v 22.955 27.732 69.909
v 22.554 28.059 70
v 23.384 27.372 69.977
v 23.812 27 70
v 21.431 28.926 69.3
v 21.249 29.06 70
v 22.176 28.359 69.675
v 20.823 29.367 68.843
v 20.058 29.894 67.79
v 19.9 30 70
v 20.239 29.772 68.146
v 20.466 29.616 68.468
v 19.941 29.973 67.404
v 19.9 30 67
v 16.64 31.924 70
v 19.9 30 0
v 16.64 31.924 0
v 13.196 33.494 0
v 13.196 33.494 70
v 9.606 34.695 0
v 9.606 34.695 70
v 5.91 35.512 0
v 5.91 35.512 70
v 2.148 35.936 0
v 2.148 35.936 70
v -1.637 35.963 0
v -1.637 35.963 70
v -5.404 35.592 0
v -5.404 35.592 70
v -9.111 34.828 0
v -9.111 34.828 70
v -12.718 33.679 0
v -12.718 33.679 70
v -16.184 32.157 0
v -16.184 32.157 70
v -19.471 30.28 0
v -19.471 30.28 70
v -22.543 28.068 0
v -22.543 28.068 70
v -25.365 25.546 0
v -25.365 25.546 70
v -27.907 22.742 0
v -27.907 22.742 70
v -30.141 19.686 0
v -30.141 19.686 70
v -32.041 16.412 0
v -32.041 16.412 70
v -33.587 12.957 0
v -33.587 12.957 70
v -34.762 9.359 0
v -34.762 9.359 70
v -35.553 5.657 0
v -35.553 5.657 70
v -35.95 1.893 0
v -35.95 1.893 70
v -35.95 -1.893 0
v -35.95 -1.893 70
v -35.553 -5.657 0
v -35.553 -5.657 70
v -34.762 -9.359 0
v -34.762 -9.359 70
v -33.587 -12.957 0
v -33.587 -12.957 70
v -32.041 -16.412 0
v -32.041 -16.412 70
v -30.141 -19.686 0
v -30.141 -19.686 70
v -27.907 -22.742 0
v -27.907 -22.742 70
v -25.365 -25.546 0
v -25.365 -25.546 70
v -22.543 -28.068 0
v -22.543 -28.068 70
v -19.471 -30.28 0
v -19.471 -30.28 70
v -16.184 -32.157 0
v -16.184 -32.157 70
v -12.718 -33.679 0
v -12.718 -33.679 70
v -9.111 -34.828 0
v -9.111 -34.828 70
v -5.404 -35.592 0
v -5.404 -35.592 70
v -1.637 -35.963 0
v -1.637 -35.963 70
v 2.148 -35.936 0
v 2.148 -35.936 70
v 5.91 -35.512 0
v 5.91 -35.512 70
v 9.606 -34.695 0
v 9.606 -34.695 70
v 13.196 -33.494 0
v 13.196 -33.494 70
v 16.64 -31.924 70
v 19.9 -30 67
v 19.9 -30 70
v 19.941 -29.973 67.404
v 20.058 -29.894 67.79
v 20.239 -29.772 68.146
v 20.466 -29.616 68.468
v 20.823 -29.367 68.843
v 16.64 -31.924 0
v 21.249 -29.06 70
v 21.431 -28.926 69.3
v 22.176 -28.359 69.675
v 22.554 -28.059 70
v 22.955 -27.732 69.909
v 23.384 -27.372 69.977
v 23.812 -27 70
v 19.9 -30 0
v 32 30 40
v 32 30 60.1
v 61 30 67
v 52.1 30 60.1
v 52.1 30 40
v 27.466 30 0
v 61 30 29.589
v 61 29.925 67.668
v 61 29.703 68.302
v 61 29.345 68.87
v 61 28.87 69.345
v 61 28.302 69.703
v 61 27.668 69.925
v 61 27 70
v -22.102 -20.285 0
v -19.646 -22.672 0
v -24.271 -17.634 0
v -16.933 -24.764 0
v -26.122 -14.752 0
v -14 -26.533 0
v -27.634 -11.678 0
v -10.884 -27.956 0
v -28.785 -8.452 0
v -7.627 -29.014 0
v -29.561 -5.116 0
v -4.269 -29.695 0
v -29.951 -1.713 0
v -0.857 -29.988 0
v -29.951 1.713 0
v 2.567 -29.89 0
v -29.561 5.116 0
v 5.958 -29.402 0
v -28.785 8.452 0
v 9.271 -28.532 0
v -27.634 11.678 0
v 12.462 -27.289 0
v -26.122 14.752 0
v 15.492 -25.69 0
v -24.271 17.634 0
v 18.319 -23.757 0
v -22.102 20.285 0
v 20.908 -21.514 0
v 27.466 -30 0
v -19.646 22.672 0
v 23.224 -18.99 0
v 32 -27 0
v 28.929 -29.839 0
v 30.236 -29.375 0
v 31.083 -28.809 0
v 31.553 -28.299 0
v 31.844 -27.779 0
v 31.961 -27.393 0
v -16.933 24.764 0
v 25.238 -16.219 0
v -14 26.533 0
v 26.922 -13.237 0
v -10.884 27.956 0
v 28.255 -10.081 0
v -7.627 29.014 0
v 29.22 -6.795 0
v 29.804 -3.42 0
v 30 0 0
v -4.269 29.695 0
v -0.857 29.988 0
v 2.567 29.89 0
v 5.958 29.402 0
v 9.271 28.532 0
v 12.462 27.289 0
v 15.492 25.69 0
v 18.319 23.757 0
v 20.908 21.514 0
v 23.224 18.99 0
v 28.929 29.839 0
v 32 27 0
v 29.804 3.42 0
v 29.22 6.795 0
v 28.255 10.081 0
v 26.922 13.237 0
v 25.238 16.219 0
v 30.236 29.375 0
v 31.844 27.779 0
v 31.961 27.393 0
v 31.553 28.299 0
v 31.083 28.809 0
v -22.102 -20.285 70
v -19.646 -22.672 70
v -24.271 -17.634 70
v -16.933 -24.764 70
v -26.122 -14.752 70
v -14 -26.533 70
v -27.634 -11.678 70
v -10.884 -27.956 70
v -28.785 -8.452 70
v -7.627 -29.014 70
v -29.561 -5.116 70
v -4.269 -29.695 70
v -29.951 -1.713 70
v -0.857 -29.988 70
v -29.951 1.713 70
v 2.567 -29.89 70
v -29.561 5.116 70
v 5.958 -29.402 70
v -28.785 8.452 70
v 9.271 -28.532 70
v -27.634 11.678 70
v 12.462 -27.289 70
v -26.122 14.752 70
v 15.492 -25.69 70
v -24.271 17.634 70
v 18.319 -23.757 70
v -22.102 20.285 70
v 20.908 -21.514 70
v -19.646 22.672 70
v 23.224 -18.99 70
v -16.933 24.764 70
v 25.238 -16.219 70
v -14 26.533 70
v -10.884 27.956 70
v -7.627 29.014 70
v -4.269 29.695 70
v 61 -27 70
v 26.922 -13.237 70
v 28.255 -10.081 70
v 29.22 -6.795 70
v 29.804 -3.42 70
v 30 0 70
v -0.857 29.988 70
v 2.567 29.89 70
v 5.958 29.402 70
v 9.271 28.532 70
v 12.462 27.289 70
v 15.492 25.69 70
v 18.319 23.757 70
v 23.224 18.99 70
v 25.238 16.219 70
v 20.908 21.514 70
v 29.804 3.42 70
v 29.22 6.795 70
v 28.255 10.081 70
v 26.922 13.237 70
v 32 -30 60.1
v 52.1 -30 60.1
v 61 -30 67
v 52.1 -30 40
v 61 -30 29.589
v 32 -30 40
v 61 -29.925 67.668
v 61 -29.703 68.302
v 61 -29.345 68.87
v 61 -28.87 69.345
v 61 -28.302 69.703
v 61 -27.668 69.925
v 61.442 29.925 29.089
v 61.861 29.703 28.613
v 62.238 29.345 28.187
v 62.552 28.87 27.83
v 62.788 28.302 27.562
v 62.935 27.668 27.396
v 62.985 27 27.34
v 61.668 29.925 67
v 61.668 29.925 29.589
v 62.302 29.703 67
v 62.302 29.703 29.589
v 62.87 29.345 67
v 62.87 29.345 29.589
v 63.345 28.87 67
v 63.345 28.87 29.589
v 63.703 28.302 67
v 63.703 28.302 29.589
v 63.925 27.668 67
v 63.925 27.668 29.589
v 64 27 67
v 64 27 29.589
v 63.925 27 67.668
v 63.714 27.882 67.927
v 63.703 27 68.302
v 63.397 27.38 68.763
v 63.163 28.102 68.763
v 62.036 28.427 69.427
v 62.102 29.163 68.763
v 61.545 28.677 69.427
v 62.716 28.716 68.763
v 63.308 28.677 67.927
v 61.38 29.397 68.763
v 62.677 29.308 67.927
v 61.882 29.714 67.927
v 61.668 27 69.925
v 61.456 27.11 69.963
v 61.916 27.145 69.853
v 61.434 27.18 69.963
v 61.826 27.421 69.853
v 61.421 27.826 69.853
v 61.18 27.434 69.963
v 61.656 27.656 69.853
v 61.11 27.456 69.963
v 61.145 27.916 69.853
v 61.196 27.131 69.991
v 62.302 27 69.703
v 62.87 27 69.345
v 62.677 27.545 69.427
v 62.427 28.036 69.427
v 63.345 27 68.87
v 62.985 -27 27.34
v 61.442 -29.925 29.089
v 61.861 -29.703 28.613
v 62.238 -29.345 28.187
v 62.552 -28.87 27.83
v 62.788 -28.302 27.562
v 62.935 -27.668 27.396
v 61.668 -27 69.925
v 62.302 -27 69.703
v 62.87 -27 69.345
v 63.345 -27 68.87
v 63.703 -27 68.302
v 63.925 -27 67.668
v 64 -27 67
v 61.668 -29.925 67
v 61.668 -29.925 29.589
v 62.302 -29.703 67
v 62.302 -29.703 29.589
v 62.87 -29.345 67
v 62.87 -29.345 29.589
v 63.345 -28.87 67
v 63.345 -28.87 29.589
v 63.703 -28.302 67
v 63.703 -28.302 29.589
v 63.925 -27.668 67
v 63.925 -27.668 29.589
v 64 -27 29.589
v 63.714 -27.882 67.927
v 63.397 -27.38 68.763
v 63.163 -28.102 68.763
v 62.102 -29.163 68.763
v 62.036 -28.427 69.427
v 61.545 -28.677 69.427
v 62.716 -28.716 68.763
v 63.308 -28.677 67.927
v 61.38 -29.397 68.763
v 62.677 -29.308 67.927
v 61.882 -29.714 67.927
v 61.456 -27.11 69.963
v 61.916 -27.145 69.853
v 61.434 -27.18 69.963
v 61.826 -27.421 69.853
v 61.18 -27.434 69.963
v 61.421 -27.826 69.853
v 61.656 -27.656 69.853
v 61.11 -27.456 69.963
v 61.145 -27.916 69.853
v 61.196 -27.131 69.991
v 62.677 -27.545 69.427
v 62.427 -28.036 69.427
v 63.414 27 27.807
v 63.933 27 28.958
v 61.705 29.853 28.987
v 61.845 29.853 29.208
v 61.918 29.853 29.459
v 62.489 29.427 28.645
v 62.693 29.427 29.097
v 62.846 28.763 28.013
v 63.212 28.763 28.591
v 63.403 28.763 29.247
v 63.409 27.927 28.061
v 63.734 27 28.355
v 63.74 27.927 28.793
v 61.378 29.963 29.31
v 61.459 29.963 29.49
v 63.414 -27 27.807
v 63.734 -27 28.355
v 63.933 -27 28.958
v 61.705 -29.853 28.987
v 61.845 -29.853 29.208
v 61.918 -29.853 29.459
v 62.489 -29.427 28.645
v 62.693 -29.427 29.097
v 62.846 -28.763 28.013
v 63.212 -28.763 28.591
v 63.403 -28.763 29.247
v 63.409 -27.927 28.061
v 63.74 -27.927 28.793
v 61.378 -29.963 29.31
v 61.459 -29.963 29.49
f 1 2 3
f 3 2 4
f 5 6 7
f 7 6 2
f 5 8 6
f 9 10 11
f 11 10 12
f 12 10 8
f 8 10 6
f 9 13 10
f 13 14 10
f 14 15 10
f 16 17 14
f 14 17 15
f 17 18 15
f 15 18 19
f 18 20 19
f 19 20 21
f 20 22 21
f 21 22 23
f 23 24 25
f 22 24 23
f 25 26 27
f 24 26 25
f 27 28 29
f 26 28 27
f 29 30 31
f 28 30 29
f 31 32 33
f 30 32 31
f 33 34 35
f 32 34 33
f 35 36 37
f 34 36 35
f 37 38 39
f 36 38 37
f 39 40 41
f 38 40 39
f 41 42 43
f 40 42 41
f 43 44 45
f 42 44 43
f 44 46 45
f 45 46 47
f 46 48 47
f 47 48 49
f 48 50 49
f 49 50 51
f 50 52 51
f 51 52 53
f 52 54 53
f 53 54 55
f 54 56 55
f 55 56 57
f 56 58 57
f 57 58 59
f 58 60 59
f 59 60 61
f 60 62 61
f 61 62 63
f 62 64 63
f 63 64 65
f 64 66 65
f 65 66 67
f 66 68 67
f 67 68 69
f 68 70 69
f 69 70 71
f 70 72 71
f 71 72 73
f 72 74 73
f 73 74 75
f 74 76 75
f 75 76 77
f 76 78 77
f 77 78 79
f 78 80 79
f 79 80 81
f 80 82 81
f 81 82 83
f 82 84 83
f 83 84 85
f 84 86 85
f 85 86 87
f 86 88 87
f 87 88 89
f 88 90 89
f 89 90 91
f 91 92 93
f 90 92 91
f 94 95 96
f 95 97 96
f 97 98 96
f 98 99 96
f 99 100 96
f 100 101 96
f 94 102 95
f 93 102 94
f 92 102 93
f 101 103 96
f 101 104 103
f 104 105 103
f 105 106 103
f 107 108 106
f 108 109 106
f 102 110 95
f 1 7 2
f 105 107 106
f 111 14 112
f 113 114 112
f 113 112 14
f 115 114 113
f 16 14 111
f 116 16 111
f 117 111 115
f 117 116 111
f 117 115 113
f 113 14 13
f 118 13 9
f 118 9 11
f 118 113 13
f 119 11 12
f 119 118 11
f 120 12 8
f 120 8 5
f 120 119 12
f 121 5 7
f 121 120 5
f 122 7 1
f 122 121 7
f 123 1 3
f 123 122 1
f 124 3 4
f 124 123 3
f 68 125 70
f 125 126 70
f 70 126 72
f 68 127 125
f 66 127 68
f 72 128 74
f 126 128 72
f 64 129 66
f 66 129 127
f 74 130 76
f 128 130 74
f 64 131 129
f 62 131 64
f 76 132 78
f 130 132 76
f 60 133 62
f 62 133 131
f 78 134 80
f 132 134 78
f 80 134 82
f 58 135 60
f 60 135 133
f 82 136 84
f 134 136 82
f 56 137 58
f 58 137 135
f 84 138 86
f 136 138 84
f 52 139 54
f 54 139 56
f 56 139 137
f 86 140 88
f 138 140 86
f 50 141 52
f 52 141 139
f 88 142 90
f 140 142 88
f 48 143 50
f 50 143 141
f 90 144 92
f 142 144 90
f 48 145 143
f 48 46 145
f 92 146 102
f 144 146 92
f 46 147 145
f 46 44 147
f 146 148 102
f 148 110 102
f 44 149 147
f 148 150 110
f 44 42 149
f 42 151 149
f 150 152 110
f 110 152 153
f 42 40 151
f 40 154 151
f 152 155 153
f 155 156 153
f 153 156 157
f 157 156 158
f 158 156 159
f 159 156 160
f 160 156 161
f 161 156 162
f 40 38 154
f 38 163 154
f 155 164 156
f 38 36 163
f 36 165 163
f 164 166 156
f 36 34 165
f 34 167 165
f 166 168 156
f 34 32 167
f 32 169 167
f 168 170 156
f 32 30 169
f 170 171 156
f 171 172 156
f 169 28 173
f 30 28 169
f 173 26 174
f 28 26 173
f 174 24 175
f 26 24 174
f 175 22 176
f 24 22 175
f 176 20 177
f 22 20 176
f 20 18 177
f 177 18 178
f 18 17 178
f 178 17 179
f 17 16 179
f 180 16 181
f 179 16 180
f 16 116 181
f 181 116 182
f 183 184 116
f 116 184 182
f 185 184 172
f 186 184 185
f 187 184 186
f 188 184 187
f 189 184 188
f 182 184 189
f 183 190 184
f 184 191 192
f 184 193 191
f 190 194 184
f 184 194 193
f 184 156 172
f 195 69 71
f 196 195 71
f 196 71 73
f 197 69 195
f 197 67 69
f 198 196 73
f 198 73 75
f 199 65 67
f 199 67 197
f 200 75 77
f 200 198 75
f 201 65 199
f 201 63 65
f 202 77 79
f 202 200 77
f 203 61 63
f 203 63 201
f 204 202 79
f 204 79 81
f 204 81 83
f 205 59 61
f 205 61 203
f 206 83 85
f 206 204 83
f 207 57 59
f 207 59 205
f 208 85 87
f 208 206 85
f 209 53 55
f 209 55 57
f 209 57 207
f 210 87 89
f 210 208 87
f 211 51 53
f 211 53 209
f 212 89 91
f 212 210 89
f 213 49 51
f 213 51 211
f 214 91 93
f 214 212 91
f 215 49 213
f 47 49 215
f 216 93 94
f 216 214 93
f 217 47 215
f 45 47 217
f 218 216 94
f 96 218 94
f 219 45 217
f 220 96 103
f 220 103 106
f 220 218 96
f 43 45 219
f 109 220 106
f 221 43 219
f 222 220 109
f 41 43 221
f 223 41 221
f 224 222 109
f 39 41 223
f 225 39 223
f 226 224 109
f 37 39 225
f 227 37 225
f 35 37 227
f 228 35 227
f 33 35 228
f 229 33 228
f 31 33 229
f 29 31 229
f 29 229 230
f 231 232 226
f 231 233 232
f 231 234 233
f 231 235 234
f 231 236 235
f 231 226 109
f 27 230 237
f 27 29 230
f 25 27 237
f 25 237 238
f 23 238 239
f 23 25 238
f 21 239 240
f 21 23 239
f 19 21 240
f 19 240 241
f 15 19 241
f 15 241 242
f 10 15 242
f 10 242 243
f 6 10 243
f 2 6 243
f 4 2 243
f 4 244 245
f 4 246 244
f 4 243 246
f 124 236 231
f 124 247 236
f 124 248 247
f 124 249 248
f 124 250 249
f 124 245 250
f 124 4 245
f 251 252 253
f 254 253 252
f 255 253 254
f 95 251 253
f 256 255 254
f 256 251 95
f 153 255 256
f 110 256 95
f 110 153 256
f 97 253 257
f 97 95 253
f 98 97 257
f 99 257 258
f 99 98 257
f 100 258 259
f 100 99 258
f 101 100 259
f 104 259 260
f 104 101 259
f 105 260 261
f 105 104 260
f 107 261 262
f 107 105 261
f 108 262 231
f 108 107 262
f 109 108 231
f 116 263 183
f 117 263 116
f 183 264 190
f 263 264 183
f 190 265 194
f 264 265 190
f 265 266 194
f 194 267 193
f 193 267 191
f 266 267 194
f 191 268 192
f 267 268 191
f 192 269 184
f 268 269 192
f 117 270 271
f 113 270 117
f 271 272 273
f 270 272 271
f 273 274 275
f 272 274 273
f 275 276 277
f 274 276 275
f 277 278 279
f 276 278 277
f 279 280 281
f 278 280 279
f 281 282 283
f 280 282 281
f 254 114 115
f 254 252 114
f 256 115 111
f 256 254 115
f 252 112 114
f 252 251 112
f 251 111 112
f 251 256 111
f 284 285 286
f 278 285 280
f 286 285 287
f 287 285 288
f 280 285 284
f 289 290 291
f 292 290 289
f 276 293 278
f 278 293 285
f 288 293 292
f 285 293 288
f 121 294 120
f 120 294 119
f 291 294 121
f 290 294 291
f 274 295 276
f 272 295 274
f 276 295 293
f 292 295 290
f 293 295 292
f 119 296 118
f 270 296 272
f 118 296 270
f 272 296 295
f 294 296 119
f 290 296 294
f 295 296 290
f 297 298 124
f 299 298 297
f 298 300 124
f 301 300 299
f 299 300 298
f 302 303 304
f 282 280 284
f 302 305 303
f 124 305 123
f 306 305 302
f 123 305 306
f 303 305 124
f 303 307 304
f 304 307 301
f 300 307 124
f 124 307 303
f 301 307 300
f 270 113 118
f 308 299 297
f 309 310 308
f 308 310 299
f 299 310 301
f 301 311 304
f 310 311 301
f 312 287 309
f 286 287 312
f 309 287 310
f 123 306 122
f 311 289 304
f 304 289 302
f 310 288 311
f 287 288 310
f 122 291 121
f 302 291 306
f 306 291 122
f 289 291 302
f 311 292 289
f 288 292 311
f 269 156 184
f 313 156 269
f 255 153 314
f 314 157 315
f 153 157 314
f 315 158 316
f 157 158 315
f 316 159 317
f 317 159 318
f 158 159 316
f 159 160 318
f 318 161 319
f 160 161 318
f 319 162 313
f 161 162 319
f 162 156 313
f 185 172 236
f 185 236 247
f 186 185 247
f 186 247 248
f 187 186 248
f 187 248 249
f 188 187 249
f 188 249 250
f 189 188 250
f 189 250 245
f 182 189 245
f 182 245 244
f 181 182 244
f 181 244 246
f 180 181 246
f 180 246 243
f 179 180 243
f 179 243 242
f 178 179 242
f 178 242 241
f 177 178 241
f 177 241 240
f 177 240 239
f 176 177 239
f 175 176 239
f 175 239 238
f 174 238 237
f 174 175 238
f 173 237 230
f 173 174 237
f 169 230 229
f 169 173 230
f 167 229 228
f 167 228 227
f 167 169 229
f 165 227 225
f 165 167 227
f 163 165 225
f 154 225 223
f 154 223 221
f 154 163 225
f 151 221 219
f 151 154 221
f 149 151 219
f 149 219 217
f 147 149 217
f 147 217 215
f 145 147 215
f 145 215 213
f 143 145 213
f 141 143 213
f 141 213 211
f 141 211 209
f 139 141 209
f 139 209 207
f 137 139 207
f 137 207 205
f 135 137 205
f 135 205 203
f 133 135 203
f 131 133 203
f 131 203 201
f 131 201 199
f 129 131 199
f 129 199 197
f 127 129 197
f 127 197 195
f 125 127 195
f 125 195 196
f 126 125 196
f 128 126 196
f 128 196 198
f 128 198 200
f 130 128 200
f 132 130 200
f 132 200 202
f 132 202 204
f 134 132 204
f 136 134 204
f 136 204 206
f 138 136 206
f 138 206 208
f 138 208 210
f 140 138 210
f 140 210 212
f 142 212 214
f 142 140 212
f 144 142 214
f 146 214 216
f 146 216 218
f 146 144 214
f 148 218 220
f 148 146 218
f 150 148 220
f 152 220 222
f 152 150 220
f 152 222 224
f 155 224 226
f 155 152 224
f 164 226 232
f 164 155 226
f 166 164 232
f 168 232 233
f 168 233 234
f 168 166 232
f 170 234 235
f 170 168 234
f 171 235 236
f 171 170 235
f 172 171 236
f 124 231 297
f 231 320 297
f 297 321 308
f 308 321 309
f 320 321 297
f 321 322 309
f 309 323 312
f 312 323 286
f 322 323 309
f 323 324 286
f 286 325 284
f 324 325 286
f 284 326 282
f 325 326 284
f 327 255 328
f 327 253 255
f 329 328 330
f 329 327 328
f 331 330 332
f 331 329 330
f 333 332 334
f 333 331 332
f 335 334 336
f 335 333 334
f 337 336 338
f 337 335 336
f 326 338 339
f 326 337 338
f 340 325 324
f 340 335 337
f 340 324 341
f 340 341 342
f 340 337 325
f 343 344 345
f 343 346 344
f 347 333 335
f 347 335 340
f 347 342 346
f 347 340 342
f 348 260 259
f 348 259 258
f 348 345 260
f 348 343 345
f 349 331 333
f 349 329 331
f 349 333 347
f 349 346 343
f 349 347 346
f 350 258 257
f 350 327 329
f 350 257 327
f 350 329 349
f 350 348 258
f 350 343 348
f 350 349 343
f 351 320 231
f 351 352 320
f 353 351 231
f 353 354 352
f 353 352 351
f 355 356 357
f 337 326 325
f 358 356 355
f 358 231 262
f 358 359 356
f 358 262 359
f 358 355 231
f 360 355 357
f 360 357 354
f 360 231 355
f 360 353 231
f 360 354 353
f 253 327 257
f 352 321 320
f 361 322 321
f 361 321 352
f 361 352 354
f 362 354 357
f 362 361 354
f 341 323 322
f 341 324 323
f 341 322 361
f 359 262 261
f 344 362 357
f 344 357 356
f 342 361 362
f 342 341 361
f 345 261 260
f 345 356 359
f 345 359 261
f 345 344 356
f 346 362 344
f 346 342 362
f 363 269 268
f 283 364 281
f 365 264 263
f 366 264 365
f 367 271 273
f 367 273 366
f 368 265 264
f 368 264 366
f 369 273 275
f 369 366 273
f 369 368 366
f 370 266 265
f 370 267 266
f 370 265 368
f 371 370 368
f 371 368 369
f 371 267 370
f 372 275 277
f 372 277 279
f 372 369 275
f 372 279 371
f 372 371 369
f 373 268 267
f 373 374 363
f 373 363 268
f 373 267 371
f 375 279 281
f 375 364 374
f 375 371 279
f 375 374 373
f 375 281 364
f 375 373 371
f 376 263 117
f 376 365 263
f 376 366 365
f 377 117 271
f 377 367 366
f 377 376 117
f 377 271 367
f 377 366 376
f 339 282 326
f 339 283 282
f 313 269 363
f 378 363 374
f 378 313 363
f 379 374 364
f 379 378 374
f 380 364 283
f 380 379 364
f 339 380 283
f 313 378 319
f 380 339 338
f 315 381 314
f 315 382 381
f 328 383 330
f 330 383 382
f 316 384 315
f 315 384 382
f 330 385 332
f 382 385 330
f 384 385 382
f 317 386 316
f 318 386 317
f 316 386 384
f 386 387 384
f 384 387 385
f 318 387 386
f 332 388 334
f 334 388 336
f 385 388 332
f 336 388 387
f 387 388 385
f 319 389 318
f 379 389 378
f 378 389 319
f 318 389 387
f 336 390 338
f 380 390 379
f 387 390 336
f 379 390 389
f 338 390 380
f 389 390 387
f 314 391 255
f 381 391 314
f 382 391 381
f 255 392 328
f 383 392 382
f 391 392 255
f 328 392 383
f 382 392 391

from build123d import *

# Parameters (mm, degrees)
SKETCH_R        = 30
PAD_DEPTH       = 70
SKETCH002_W     = 20.1
SKETCH002_H     = 20.1
POCKET_DEPTH    = 100
POCKET001_DEPTH = 100
FILLET_R        = 3


with BuildPart() as part:
    # Sketch → Pad (new body)
    with BuildSketch(Plane.XY):
        with BuildLine():
            ThreePointArc((19.899749, 30), (-36, 0), (19.899749, -30))
            Line((64, -30), (19.899749, -30))
            Line((64, 30), (64, -30))
            Line((19.899749, 30), (64, 30))
        make_face()
        Circle(SKETCH_R, mode=Mode.SUBTRACT)
    extrude(amount=PAD_DEPTH)

    # Sketch002 (on Face2 of Pad) → Pocket (cut)
    with BuildSketch(Plane.XZ.offset(30)):
        with Locations((42.05, 50.05)):
            Rectangle(SKETCH002_W, SKETCH002_H)
    extrude(amount=-POCKET_DEPTH, mode=Mode.SUBTRACT)

    # Sketch003 (on Face3 of Pocket) → Pocket001 (cut)
    with BuildSketch(Plane.XZ.offset(30)):
        Polygon((66, 30), (32, 0), (66, 0), align=None)
    extrude(amount=-POCKET001_DEPTH, mode=Mode.SUBTRACT)

    # Fillet
    fillet_edges = [part.edges().sort_by_distance(p)[0] for p in [
        (64, -30, 49.117647),
        (64, 30, 49.117647),
        (64, 0, 70),
        (64, 0, 28.235294),
        (48, 30, 14.117647),
        (48, -30, 14.117647),
        (41.949874, -30, 70),
        (41.949874, 30, 70),
    ]]
    fillet(fillet_edges, radius=FILLET_R)


solid = part.part
